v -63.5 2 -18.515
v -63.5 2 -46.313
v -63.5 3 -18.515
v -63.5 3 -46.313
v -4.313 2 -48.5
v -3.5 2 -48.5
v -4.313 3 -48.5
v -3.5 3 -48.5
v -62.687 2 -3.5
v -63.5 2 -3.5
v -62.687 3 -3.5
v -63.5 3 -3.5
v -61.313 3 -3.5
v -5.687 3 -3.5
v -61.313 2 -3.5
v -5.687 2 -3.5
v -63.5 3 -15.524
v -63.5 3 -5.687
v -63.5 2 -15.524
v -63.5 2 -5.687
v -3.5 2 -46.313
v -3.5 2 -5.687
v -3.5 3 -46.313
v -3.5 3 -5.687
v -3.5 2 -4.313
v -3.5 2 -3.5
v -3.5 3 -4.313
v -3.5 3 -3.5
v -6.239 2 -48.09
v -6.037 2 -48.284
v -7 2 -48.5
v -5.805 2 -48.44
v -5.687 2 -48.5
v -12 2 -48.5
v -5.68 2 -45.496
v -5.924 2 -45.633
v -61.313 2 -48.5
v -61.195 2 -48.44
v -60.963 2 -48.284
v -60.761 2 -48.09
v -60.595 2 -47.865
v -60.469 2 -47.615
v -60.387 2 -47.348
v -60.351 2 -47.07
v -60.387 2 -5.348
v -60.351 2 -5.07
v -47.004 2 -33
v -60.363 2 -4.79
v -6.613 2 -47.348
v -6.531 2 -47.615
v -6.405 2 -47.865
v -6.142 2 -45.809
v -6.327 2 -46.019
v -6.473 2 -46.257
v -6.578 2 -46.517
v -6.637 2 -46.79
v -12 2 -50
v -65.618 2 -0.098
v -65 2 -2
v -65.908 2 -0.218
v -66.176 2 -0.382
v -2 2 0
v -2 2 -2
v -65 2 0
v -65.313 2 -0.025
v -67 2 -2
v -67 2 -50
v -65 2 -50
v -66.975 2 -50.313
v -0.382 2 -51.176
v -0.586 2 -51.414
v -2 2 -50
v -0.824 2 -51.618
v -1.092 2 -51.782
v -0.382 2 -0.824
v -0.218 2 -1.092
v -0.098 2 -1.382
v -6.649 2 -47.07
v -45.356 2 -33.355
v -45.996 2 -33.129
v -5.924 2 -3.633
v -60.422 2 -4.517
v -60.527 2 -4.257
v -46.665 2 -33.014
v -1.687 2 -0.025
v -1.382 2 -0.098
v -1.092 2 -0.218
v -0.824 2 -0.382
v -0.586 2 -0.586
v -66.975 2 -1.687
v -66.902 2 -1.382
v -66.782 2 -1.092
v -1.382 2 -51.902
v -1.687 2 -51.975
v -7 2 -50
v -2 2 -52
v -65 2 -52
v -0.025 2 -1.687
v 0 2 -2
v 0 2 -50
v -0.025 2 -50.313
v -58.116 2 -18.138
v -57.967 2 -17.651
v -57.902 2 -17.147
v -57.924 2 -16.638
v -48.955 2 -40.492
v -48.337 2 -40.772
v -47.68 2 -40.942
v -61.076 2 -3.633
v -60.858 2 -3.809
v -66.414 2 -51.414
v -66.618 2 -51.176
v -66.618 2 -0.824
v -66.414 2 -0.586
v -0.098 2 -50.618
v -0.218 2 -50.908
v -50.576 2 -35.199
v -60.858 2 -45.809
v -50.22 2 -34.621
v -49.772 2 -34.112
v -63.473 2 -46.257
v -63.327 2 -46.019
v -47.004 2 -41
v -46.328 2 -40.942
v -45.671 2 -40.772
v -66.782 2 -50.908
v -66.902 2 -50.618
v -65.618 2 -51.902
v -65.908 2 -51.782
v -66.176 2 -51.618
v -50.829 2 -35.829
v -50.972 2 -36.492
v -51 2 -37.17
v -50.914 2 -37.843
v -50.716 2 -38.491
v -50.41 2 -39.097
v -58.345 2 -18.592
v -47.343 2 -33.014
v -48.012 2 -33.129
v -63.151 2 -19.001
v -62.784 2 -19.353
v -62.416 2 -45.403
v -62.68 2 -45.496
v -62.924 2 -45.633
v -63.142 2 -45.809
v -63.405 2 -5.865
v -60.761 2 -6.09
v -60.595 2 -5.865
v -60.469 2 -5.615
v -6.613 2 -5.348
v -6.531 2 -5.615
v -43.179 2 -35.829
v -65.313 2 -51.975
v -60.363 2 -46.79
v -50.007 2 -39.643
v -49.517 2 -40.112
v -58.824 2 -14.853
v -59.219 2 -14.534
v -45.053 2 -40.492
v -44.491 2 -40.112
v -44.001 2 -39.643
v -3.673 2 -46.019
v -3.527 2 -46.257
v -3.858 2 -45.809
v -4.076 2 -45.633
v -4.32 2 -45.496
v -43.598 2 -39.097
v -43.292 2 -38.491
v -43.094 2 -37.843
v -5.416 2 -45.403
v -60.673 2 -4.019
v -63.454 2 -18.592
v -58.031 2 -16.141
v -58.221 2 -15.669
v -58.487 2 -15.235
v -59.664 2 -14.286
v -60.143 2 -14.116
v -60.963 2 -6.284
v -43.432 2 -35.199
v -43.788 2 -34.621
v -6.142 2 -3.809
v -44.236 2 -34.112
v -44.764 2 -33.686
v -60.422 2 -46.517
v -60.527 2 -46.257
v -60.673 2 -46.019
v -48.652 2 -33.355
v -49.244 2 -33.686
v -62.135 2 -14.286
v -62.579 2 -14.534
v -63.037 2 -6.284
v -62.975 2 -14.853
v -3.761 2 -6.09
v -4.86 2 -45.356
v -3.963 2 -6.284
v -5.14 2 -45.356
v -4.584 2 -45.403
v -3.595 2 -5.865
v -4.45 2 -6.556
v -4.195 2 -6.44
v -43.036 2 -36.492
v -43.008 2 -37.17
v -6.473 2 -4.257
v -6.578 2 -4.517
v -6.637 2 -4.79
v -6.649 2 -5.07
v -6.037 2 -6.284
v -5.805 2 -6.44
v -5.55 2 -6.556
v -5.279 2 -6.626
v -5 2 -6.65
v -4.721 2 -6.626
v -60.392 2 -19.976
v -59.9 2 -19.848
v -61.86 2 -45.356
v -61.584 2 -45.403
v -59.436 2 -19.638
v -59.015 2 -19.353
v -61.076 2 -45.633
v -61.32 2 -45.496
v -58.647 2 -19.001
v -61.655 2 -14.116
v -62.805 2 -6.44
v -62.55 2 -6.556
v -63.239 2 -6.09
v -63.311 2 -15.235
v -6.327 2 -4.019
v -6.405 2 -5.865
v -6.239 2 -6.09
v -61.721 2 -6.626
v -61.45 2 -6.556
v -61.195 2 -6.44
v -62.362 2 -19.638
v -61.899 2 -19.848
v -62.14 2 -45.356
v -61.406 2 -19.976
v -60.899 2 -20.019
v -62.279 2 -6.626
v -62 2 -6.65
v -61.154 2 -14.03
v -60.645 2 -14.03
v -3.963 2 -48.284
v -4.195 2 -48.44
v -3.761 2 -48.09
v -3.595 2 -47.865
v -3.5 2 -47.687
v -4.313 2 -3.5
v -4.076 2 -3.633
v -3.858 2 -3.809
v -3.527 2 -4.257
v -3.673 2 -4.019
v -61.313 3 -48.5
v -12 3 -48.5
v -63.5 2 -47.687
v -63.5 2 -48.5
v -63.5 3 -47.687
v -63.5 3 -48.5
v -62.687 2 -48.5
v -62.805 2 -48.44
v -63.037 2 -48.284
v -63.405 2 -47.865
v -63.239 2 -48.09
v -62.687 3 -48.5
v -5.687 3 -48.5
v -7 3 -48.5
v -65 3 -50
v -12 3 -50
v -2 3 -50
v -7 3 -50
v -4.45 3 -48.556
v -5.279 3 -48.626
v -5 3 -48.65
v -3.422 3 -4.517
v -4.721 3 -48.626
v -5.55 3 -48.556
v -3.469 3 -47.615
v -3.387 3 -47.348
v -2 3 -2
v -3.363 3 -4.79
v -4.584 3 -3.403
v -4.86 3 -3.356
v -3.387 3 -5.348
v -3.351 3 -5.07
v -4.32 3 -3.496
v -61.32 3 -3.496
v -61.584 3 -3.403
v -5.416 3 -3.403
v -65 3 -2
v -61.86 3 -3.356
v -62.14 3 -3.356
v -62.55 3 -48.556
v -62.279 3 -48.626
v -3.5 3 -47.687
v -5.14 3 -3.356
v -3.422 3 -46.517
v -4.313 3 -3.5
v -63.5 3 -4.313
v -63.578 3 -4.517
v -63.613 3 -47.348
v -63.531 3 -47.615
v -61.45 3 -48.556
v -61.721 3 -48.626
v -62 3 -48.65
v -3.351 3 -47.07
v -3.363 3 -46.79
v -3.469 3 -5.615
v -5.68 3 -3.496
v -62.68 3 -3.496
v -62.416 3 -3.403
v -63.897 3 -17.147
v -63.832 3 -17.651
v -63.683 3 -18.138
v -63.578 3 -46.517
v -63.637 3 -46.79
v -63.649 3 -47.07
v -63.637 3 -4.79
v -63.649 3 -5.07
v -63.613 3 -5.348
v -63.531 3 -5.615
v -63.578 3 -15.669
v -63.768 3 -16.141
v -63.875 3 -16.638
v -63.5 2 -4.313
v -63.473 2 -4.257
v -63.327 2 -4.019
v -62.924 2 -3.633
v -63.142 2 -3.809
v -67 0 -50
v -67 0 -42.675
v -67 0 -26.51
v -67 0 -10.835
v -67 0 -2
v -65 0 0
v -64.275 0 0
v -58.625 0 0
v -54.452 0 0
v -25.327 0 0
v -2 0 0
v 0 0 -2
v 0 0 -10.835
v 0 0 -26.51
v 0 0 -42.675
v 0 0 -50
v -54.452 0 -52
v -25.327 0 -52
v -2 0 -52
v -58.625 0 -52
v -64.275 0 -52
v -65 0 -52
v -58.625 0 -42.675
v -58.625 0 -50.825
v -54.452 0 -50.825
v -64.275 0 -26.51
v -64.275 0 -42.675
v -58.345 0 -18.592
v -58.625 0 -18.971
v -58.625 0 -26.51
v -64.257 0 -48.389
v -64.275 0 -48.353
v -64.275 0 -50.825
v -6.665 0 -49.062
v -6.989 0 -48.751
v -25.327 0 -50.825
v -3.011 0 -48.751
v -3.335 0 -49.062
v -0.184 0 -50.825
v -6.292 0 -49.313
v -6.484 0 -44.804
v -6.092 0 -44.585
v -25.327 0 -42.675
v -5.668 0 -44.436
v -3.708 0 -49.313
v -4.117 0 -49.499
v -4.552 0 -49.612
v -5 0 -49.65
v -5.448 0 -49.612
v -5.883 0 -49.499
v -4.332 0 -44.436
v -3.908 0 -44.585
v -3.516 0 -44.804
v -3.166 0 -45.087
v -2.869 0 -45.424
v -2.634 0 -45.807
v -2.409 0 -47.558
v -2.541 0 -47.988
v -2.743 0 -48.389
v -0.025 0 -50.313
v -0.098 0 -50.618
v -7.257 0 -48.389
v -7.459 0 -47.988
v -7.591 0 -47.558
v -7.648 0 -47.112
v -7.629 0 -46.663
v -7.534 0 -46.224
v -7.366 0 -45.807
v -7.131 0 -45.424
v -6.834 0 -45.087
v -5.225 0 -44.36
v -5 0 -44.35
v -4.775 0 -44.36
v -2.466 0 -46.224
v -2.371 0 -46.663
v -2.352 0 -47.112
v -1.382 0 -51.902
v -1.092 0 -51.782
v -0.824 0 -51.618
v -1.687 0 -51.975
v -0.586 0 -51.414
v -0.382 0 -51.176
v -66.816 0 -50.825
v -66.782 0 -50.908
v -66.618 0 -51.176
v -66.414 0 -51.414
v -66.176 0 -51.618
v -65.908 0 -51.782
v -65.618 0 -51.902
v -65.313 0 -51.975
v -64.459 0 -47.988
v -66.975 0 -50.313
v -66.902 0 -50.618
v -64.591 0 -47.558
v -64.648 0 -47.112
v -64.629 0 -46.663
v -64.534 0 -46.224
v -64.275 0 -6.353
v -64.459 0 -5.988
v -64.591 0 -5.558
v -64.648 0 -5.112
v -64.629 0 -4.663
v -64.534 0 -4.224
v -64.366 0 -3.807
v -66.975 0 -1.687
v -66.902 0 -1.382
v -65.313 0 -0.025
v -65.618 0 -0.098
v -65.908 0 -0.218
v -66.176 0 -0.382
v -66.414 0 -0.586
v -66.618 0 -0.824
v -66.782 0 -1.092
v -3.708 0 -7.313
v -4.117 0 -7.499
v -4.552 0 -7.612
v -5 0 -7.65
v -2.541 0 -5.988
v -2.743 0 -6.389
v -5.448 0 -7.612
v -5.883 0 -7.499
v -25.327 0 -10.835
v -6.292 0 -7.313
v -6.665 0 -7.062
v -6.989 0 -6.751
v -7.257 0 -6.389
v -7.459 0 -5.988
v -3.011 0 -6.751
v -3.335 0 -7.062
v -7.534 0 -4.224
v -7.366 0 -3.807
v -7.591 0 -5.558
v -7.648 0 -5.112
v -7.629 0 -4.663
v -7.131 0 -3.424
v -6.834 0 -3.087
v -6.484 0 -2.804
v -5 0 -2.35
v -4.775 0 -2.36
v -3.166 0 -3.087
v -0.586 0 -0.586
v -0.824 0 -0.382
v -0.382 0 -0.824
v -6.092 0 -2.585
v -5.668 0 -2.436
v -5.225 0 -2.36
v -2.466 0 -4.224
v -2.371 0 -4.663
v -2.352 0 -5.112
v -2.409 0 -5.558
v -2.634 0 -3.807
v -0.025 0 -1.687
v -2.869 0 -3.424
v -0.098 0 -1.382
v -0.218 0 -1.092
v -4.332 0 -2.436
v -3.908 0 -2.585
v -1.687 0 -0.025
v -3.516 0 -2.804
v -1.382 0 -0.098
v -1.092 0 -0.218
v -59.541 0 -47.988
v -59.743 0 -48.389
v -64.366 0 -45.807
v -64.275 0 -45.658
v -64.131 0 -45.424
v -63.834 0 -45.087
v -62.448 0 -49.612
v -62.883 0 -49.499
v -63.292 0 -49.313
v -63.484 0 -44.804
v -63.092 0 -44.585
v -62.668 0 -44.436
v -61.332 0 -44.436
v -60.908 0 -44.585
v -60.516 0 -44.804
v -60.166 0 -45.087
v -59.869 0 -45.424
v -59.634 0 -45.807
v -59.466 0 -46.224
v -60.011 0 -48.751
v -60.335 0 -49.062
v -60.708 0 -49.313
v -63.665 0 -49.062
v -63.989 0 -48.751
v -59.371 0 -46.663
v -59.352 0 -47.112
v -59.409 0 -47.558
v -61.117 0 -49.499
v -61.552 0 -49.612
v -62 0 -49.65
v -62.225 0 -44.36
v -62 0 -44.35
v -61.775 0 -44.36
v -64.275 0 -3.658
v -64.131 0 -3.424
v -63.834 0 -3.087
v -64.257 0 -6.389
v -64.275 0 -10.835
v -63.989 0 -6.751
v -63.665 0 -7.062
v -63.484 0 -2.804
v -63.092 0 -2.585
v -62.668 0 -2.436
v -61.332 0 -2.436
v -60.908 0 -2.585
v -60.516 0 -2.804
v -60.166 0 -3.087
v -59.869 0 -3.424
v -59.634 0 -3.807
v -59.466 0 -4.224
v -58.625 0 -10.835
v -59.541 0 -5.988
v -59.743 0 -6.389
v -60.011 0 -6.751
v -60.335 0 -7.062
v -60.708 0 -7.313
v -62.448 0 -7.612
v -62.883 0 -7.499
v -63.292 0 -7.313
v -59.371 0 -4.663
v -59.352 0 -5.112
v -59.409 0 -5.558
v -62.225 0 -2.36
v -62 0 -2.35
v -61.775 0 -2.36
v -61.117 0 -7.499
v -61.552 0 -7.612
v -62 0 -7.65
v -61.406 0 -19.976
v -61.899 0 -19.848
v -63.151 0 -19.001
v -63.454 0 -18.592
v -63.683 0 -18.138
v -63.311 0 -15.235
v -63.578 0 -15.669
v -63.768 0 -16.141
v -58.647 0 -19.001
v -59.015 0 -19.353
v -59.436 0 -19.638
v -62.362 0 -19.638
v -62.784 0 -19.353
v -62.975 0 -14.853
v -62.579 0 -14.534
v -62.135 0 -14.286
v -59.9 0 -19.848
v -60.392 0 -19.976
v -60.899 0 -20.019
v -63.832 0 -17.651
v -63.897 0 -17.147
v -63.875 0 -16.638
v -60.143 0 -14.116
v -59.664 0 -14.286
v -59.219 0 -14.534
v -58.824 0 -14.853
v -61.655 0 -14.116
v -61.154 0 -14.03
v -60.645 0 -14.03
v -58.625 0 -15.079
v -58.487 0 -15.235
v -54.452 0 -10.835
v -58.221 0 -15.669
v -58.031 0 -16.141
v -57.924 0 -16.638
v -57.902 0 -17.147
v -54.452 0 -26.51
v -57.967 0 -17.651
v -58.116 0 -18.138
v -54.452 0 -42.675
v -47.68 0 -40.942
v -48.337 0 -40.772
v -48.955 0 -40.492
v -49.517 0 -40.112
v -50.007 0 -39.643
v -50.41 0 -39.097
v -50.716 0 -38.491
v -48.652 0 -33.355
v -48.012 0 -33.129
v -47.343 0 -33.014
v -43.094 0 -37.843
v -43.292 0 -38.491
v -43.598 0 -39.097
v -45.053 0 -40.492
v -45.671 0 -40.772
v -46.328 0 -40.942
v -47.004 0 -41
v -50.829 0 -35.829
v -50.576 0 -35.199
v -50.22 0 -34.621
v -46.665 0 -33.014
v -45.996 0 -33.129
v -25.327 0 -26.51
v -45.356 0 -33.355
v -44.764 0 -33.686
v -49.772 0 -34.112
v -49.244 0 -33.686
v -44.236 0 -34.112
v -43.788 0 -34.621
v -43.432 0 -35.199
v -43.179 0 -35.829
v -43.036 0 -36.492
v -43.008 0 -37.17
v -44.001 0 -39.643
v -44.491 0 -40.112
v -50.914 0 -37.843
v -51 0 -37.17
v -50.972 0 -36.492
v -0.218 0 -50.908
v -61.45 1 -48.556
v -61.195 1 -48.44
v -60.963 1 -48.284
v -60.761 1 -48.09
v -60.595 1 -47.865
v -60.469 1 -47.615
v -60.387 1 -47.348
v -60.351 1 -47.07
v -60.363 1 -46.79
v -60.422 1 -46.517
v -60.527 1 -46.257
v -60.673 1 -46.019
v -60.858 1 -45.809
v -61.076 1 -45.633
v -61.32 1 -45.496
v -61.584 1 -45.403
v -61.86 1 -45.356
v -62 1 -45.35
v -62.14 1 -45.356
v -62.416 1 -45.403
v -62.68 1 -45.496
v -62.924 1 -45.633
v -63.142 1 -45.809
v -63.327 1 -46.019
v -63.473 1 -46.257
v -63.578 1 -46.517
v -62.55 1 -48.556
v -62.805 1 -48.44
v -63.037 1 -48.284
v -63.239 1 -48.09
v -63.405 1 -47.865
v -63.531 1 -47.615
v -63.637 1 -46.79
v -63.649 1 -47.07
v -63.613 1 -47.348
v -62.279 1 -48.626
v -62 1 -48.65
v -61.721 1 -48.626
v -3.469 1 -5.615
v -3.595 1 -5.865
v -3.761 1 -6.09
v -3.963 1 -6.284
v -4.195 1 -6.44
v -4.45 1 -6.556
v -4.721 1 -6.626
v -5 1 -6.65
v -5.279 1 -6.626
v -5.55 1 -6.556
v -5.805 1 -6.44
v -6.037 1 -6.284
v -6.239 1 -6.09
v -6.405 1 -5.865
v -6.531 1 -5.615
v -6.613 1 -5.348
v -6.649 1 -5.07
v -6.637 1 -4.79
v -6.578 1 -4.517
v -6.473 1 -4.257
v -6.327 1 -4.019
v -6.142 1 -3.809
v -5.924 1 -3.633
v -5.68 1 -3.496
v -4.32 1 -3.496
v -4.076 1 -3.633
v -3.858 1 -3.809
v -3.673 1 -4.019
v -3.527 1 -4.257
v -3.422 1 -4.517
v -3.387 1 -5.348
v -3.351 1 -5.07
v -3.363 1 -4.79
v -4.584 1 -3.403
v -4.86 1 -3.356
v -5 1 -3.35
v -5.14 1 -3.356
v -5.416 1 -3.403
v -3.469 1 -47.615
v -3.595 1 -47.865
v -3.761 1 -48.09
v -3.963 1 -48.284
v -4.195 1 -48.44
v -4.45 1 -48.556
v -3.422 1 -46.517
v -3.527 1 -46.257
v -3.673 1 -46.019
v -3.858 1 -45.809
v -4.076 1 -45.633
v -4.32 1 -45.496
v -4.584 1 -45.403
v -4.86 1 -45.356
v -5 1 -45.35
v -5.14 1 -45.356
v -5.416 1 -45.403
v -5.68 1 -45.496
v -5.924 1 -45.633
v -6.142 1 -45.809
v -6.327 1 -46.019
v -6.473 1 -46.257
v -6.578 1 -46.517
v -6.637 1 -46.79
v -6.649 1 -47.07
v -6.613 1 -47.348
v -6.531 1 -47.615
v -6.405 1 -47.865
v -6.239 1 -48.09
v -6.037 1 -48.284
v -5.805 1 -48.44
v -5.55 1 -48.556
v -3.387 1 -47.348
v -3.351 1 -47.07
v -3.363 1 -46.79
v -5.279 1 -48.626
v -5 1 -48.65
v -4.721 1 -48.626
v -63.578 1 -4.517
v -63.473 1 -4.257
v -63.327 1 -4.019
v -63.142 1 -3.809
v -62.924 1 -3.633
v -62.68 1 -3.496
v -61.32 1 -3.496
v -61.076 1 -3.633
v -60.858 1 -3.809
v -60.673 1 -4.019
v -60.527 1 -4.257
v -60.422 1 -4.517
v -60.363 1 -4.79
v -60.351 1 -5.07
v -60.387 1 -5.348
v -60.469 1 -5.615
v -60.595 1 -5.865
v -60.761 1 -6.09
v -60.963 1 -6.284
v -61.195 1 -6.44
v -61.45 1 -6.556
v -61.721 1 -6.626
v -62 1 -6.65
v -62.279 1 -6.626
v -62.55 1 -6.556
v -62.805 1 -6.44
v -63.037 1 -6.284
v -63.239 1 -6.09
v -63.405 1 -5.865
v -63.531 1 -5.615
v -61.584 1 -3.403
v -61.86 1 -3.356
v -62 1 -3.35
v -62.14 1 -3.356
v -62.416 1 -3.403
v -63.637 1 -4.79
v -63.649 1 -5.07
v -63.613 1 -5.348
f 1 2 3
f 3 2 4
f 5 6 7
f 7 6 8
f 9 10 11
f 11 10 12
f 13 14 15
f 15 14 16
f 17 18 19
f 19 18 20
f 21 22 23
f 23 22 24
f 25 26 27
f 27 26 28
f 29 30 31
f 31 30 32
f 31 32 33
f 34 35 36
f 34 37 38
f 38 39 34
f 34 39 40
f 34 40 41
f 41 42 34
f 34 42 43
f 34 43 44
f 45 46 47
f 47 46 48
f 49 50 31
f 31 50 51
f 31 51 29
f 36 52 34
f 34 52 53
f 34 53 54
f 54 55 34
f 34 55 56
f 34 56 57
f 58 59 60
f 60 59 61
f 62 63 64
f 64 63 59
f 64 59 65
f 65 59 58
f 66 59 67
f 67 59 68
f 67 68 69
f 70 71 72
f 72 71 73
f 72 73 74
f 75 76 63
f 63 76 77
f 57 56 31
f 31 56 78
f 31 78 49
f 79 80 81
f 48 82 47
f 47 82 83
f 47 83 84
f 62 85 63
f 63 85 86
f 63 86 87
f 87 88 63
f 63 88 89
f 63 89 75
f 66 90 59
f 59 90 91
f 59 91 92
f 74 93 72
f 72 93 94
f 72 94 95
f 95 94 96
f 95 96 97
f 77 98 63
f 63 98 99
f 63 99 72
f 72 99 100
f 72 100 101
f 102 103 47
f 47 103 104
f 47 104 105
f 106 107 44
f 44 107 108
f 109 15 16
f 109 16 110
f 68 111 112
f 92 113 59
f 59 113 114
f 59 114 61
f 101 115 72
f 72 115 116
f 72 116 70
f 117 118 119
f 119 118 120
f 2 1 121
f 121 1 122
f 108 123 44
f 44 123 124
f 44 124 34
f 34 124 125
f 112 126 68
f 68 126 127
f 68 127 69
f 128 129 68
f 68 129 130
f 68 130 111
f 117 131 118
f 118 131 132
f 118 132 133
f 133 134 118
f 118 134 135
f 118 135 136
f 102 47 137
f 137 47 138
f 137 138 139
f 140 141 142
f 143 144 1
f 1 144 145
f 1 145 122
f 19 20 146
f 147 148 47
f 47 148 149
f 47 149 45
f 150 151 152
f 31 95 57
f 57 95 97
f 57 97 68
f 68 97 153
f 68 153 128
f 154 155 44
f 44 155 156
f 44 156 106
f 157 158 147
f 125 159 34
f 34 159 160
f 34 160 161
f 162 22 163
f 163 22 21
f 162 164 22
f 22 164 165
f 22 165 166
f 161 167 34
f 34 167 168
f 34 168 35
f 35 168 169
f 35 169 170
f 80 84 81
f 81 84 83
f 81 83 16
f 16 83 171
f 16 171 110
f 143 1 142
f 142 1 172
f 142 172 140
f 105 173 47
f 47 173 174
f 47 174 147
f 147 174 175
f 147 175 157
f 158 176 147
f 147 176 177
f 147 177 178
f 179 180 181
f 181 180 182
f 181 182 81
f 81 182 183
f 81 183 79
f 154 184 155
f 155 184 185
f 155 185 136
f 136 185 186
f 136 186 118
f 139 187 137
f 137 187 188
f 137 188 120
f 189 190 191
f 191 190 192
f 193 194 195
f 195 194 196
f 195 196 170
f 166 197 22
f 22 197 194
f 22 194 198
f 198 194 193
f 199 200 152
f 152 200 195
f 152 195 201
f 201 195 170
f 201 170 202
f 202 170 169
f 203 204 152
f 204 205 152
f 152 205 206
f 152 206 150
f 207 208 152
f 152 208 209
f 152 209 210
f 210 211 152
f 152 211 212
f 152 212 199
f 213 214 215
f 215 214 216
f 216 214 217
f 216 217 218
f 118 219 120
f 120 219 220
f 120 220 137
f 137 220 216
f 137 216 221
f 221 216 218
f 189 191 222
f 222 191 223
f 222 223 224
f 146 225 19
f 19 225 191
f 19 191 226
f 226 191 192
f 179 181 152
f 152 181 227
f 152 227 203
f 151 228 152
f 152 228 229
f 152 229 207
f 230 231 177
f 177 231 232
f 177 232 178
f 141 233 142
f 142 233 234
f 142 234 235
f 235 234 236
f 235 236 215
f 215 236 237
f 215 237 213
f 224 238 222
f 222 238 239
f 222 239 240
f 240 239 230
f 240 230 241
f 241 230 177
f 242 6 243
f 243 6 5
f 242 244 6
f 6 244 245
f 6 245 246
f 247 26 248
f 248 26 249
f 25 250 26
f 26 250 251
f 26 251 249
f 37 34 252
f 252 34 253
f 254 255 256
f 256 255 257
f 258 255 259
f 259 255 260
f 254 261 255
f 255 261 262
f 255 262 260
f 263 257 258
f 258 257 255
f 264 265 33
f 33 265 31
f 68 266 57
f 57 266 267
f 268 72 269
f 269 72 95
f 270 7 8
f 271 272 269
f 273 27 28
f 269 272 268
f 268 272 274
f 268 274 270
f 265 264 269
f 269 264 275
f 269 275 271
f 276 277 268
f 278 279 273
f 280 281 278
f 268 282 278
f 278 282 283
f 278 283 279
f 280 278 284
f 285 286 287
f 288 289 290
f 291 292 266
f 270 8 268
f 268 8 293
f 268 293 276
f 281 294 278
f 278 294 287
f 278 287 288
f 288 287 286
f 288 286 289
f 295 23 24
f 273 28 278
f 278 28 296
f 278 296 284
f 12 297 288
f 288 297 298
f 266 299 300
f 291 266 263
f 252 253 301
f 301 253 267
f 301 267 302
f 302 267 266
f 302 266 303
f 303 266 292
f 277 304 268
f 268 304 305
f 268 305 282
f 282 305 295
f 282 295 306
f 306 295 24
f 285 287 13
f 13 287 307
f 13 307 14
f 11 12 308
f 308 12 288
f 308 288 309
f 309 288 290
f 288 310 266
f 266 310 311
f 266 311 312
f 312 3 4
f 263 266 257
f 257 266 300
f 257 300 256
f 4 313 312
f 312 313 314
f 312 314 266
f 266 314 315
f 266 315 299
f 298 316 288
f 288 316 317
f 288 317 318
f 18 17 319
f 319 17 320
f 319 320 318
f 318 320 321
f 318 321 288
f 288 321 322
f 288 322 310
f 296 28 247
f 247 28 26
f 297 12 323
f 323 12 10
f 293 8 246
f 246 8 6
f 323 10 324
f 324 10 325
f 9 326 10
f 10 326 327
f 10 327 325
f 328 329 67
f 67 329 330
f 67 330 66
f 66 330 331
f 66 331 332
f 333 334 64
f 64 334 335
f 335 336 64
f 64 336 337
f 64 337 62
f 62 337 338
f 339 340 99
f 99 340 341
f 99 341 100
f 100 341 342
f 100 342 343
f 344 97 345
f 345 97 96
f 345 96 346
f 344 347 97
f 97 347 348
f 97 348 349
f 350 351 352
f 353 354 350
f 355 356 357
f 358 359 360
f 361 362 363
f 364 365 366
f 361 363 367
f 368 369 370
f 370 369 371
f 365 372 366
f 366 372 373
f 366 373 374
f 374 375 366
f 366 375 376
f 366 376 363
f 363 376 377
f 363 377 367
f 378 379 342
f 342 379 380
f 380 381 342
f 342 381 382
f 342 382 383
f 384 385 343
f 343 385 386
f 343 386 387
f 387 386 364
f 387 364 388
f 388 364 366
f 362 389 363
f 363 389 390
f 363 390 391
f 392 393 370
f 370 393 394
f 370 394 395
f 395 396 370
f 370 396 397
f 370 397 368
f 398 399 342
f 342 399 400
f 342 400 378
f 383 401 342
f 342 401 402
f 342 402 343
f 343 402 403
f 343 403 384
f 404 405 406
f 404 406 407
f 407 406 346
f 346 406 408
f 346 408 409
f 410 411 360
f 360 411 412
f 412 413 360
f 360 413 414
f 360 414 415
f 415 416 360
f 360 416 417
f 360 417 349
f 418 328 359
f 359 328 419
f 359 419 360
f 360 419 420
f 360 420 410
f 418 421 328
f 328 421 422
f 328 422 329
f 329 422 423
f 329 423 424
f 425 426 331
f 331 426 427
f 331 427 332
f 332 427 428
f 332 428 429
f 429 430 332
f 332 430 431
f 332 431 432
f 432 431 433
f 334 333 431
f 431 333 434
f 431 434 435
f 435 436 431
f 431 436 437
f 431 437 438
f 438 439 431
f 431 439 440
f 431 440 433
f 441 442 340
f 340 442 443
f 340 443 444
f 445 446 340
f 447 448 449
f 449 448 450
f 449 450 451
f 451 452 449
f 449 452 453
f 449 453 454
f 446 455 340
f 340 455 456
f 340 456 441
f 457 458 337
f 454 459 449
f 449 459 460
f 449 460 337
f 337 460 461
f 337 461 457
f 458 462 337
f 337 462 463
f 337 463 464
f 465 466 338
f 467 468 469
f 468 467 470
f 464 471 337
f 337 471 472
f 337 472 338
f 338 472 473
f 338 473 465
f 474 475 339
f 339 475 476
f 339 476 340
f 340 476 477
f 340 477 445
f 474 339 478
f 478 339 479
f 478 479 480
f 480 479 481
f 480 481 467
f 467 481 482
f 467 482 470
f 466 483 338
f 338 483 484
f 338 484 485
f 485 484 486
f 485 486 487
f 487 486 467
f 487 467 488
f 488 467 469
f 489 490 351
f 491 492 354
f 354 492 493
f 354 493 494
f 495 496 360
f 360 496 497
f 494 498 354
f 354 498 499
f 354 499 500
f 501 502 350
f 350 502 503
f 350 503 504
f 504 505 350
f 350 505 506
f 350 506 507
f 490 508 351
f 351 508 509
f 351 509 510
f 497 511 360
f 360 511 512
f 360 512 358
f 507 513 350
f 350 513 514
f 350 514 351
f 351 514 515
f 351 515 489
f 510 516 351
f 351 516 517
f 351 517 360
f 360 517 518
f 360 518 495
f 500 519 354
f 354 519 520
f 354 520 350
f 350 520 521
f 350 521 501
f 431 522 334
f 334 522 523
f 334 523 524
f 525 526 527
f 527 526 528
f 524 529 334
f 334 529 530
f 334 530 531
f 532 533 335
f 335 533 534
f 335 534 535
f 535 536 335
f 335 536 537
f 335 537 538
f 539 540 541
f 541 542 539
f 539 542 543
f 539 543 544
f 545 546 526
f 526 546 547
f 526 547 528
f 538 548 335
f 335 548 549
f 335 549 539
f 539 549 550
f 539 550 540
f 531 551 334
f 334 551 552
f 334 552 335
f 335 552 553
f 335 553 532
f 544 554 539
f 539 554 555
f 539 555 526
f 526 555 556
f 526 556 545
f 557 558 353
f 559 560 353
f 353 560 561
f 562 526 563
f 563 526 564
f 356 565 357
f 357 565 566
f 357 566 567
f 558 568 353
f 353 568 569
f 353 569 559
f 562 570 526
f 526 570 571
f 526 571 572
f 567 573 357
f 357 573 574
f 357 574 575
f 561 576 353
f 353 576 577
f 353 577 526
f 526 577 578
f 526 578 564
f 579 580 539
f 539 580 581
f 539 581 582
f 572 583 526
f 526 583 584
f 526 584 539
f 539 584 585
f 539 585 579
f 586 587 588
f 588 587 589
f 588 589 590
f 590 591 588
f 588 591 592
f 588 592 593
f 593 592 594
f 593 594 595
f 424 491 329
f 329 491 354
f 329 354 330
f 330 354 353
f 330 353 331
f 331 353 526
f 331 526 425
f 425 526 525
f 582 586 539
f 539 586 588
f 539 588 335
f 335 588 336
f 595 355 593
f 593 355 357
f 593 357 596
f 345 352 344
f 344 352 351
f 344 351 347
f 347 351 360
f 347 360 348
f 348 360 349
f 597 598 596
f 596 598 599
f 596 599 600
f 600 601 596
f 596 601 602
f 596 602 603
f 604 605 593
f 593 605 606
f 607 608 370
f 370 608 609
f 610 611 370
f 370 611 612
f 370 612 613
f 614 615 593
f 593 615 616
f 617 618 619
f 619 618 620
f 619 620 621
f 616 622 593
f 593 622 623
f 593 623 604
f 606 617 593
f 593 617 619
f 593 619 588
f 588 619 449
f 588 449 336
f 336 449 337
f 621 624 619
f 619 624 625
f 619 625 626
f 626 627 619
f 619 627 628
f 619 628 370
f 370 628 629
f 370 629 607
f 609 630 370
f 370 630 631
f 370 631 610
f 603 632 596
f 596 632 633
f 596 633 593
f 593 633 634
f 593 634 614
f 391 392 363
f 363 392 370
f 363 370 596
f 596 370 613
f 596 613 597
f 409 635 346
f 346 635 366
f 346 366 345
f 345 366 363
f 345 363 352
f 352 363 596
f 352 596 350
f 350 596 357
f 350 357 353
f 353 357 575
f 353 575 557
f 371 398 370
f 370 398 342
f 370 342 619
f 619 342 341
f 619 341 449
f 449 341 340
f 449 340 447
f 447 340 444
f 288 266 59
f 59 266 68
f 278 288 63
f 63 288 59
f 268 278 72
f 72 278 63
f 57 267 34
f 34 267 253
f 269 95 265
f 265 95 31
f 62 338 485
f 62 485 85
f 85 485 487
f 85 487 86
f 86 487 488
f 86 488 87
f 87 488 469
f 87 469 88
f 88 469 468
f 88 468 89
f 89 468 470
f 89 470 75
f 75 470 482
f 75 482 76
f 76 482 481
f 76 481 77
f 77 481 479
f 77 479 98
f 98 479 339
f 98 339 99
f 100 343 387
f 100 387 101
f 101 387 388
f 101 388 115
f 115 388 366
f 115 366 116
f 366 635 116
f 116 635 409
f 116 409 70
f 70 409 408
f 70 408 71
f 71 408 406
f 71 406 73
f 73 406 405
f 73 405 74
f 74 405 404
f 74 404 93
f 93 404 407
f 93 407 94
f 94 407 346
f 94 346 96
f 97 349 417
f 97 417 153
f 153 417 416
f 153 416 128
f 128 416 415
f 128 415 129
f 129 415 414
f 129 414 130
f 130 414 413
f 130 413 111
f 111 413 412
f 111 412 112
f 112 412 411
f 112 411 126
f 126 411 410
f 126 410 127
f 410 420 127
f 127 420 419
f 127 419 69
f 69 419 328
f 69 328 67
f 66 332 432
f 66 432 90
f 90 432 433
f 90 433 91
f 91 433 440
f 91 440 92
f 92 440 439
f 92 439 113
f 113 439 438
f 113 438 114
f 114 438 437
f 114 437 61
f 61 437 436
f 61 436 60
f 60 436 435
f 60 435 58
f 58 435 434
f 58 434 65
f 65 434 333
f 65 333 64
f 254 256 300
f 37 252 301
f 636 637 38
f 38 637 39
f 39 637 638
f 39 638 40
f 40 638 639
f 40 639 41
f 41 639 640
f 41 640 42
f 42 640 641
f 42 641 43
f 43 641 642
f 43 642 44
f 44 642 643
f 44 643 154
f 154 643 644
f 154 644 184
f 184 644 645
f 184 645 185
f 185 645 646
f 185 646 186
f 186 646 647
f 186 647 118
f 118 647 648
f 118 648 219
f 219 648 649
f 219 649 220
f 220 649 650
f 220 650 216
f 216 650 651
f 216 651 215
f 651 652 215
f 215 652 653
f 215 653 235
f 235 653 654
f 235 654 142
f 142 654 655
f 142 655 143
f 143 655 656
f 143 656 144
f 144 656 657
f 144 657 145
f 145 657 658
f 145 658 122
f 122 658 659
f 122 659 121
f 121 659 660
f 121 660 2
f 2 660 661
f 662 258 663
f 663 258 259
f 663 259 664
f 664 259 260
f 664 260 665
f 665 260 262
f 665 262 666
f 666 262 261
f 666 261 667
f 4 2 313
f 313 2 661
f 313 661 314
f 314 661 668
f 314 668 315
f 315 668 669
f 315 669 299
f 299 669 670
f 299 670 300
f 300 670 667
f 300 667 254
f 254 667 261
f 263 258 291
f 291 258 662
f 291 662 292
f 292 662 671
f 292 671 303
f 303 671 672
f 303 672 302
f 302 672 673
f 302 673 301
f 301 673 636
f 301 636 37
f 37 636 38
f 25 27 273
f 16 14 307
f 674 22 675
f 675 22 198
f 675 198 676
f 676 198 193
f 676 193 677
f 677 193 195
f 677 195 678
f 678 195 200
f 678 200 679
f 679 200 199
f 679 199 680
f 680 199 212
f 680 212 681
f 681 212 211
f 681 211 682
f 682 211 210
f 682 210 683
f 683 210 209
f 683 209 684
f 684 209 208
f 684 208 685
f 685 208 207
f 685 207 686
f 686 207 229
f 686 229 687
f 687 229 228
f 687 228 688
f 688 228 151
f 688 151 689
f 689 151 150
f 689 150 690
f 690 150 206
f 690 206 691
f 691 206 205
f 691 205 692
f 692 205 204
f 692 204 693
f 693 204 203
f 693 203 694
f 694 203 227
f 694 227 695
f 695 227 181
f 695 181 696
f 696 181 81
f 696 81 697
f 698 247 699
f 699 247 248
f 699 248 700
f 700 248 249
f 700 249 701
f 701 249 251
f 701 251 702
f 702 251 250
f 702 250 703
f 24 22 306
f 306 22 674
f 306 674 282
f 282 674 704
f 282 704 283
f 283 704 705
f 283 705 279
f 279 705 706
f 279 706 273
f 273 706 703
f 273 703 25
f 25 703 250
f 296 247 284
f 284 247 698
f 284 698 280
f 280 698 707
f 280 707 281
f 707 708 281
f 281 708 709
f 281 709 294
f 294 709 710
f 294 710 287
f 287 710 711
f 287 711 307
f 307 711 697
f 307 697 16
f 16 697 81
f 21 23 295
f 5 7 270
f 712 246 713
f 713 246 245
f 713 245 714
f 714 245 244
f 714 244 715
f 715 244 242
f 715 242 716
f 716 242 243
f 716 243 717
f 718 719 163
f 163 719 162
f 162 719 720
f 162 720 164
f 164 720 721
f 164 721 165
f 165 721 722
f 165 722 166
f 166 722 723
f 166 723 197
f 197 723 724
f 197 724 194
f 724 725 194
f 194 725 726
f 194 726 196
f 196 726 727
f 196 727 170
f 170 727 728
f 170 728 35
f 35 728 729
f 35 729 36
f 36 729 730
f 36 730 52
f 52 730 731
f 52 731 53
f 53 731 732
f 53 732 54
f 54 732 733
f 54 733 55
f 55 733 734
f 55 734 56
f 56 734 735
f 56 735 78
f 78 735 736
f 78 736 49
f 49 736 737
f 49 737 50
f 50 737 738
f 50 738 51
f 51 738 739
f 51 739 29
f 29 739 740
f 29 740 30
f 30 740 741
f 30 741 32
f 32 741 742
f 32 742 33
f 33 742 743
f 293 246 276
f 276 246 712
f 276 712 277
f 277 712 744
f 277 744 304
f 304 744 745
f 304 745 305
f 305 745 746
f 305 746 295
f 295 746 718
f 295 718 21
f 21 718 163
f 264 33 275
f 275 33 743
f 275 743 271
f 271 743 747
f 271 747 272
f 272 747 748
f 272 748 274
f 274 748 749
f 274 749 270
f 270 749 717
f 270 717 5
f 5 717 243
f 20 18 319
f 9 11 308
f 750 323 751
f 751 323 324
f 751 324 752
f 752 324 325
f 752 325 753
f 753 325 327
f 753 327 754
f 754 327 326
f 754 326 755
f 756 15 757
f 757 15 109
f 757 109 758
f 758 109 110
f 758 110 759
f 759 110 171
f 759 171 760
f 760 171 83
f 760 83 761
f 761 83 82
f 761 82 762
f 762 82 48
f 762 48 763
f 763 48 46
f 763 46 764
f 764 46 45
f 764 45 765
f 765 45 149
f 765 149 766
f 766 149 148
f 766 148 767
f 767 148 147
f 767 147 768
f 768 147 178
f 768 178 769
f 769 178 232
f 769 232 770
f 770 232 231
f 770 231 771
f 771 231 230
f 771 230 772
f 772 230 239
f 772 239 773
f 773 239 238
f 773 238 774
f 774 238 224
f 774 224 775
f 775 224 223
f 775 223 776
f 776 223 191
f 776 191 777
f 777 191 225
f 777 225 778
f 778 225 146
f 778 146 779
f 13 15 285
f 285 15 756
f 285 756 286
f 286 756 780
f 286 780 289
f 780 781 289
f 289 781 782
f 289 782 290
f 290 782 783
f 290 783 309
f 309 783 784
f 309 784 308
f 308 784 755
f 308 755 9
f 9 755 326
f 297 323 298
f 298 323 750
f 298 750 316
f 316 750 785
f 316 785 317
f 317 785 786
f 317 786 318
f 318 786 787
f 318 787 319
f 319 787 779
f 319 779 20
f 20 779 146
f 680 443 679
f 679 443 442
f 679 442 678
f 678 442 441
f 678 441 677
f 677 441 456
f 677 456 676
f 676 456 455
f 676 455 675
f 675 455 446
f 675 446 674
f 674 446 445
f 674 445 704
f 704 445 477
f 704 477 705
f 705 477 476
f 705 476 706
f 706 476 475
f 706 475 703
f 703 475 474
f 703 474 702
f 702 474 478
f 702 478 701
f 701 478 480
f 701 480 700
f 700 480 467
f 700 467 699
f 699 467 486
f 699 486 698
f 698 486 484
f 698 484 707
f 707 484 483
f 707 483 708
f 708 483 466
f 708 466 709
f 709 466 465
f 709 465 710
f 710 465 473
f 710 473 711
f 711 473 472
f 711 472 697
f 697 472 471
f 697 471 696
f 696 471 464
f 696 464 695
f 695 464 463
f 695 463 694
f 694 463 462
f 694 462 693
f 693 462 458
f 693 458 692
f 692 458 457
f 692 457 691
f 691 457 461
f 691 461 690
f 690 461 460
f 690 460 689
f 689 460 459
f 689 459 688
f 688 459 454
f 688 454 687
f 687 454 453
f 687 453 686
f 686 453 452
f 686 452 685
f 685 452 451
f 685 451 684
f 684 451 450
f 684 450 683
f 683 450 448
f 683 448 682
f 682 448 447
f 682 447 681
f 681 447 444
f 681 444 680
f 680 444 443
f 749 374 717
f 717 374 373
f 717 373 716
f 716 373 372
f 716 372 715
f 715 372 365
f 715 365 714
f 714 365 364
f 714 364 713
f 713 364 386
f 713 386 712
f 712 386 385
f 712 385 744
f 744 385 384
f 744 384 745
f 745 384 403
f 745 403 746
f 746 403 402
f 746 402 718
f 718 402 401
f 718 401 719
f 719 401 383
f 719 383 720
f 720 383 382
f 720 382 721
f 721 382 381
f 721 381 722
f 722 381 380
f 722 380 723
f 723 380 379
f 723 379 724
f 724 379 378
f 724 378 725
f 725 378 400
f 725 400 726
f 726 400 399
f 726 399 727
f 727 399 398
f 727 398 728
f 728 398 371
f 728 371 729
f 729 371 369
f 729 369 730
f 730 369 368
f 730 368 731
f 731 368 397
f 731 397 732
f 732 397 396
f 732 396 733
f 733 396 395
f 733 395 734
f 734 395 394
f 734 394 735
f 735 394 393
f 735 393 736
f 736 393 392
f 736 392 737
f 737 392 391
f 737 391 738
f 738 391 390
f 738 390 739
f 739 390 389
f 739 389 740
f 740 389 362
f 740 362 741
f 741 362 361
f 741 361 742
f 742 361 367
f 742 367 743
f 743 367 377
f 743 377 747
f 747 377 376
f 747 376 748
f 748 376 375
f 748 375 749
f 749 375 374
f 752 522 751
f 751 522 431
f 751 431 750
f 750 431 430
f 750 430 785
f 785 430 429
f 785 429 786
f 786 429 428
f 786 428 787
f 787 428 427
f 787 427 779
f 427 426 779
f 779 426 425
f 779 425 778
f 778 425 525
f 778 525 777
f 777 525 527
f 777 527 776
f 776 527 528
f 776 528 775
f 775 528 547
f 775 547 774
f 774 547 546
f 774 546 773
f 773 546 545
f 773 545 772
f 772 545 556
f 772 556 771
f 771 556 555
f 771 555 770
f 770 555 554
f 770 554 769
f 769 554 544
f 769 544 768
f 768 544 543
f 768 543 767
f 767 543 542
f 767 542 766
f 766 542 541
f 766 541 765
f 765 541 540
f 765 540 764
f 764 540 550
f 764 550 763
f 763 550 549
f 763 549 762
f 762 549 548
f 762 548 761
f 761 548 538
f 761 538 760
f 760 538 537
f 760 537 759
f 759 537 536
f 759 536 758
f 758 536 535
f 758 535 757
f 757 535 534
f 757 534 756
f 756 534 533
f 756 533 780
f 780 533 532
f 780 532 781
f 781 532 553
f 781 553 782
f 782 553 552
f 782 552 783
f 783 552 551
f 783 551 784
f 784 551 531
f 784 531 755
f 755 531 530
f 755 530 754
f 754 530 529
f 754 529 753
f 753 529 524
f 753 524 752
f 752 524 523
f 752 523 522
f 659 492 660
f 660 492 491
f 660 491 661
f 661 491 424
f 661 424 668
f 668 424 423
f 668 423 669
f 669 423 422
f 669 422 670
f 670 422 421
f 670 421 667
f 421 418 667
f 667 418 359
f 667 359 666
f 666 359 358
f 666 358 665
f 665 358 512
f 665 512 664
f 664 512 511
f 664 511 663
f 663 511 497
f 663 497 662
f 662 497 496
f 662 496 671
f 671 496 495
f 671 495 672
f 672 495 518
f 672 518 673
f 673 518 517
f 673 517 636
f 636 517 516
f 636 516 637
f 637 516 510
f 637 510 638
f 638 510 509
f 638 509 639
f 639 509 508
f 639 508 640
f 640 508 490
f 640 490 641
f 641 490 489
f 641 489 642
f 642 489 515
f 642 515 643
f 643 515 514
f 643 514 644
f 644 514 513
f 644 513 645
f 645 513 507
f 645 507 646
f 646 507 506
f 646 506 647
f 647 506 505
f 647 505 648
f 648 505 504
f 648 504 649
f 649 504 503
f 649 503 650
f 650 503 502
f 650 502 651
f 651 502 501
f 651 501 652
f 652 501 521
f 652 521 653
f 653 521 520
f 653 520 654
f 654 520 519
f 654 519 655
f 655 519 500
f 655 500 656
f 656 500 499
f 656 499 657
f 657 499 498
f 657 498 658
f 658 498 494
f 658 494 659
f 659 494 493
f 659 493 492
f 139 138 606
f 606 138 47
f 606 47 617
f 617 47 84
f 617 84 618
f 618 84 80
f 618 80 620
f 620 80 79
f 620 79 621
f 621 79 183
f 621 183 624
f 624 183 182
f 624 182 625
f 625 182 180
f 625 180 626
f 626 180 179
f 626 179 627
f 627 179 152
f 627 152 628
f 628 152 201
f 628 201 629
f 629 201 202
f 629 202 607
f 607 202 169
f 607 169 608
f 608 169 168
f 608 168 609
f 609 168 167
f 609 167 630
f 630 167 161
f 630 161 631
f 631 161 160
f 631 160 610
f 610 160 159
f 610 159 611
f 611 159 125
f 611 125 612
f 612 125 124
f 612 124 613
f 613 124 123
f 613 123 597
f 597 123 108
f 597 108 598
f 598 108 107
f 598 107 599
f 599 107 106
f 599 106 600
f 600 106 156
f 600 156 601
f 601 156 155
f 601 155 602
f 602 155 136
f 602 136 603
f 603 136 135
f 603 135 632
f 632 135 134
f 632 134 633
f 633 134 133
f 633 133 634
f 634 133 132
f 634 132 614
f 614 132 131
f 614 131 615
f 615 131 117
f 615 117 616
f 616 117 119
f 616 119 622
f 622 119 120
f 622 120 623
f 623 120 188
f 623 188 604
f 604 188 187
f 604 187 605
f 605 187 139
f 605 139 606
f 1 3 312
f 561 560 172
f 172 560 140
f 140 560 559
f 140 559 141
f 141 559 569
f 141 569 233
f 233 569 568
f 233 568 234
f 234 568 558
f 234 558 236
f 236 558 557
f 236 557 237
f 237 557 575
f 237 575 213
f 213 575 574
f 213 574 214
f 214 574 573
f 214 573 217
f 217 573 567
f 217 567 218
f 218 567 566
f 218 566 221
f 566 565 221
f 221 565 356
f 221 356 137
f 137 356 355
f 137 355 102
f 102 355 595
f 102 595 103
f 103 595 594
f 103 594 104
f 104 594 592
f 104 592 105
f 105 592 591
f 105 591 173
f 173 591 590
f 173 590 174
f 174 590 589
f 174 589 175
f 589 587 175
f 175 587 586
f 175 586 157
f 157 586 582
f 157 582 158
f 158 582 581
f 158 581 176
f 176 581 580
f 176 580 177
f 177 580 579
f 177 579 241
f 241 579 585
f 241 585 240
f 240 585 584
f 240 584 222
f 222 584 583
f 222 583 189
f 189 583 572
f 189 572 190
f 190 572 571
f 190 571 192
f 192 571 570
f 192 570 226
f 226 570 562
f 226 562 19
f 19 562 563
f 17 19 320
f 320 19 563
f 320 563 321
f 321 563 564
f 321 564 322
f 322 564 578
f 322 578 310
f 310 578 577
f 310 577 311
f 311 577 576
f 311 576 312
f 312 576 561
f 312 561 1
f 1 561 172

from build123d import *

# Parameters (mm, degrees)
SKETCH_1_W          = 67
SKETCH_1_H          = 52
SKETCH_1_W_2        = 60
SKETCH_1_H_2        = 45
EXTRUDE_1_DEPTH     = 2
SKETCH_2_W          = 60
SKETCH_2_H          = 45
EXTRUDE_2_DEPTH     = 1
SKETCH_3_W          = 60
SKETCH_3_H          = 45
EXTRUDE_3_DEPTH     = 2
SKETCH_4_W          = 5
SKETCH_4_H          = 1
CUT_EXTRUDE_1_DEPTH = 2
FILLET_1_R          = 2
SKETCH_6_R          = 1.65
CUT_EXTRUDE_3_DEPTH = 85.864598037
CHAMFER_1_SIZE      = 1
SKETCH_7_R          = 3
SKETCH_7_R_2        = 4
CUT_EXTRUDE_4_DEPTH = 10


with BuildPart() as part:
    # Эскиз1 → Бобышка-Вытянуть1 (new body)
    with BuildSketch(Plane(origin=(0, 0, 0), x_dir=(1, 0, 0), z_dir=(0, 1, 0))):
        with Locations((-33.5, 26)):
            Rectangle(SKETCH_1_W, SKETCH_1_H)
        with Locations((-33.5, 26)):
            Rectangle(SKETCH_1_W_2, SKETCH_1_H_2, mode=Mode.SUBTRACT)
    extrude(amount=EXTRUDE_1_DEPTH)

    # Эскиз2 → Бобышка-Вытянуть2 (add)
    with BuildSketch(Plane(origin=(0, 2, 0), x_dir=(1, 0, 0), z_dir=(0, 1, 0))):
        Polygon((-65, 50), (-65, 3.5), (-65, 2), (-2, 2), (-2, 50), align=None)
        with Locations((-33.5, 26)):
            Rectangle(SKETCH_2_W, SKETCH_2_H, mode=Mode.SUBTRACT)
    extrude(amount=EXTRUDE_2_DEPTH)

    # Эскиз3 → Бобышка-Вытянуть3 (add)
    with BuildSketch(Plane(origin=(0, 0, 0), x_dir=(-1, 0, 0), z_dir=(0, -1, 0))):
        with Locations((33.5, 26)):
            Rectangle(SKETCH_3_W, SKETCH_3_H)
    extrude(amount=-EXTRUDE_3_DEPTH)

    # Эскиз4 → Вырез-Вытянуть1 (cut)
    with BuildSketch(Plane(origin=(0, 0, -50), x_dir=(-1, 0, 0), z_dir=(0, 0, -1))):
        with Locations((9.5, 2.5)):
            Rectangle(SKETCH_4_W, SKETCH_4_H)
    extrude(amount=-CUT_EXTRUDE_1_DEPTH, mode=Mode.SUBTRACT)

    # Скругление1
    fillet_1_edges = [part.edges().sort_by_distance(p)[0] for p in [
        (-67, 1, -52),
        (0, 1, -52),
        (0, 1, 0),
        (-67, 1, 0),
    ]]
    fillet(fillet_1_edges, radius=FILLET_1_R)

    # Эскиз6 → Вырез-Вытянуть3 (cut, through all)
    with BuildSketch(Plane(origin=(0, 0, 0), x_dir=(-1, 0, 0), z_dir=(0, -1, 0))):
        with Locations(Location((62, 47, 0), (0, 0, 90))):
            Circle(SKETCH_6_R)
        with Locations(Location((62, 5, 0), (0, 0, 24.619977329))):
            Circle(SKETCH_6_R)
        with Locations(Location((5, 47, 0), (0, 0, 114.619977329))):
            Circle(SKETCH_6_R)
        with Locations(Location((5, 5, 0), (0, 0, 90))):
            Circle(SKETCH_6_R)
    extrude(amount=-CUT_EXTRUDE_3_DEPTH, mode=Mode.SUBTRACT)

    # Фаска1
    chamfer_1_edges = [part.edges().sort_by_distance(p)[0] for p in [
        (-62, 0, -45.35),
        (-60.5, 0, -4.312613646),
        (-5.687386354, 0, -45.5),
        (-5, 0, -3.35),
    ]]
    chamfer(chamfer_1_edges, length=CHAMFER_1_SIZE)

    # Эскиз7 → Вырез-Вытянуть4 (cut)
    with BuildSketch(Plane(origin=(0, 0, 0), x_dir=(-1, 0, 0), z_dir=(0, -1, 0))):
        with Locations(Location((60.899393258, 17.01932713, 0), (0, 0, 90))):
            Circle(SKETCH_7_R)
        with Locations(Location((47.004021418, 37, 0), (0, 0, 90))):
            Circle(SKETCH_7_R_2)
    extrude(amount=-CUT_EXTRUDE_4_DEPTH, mode=Mode.SUBTRACT)


solid = part.part
